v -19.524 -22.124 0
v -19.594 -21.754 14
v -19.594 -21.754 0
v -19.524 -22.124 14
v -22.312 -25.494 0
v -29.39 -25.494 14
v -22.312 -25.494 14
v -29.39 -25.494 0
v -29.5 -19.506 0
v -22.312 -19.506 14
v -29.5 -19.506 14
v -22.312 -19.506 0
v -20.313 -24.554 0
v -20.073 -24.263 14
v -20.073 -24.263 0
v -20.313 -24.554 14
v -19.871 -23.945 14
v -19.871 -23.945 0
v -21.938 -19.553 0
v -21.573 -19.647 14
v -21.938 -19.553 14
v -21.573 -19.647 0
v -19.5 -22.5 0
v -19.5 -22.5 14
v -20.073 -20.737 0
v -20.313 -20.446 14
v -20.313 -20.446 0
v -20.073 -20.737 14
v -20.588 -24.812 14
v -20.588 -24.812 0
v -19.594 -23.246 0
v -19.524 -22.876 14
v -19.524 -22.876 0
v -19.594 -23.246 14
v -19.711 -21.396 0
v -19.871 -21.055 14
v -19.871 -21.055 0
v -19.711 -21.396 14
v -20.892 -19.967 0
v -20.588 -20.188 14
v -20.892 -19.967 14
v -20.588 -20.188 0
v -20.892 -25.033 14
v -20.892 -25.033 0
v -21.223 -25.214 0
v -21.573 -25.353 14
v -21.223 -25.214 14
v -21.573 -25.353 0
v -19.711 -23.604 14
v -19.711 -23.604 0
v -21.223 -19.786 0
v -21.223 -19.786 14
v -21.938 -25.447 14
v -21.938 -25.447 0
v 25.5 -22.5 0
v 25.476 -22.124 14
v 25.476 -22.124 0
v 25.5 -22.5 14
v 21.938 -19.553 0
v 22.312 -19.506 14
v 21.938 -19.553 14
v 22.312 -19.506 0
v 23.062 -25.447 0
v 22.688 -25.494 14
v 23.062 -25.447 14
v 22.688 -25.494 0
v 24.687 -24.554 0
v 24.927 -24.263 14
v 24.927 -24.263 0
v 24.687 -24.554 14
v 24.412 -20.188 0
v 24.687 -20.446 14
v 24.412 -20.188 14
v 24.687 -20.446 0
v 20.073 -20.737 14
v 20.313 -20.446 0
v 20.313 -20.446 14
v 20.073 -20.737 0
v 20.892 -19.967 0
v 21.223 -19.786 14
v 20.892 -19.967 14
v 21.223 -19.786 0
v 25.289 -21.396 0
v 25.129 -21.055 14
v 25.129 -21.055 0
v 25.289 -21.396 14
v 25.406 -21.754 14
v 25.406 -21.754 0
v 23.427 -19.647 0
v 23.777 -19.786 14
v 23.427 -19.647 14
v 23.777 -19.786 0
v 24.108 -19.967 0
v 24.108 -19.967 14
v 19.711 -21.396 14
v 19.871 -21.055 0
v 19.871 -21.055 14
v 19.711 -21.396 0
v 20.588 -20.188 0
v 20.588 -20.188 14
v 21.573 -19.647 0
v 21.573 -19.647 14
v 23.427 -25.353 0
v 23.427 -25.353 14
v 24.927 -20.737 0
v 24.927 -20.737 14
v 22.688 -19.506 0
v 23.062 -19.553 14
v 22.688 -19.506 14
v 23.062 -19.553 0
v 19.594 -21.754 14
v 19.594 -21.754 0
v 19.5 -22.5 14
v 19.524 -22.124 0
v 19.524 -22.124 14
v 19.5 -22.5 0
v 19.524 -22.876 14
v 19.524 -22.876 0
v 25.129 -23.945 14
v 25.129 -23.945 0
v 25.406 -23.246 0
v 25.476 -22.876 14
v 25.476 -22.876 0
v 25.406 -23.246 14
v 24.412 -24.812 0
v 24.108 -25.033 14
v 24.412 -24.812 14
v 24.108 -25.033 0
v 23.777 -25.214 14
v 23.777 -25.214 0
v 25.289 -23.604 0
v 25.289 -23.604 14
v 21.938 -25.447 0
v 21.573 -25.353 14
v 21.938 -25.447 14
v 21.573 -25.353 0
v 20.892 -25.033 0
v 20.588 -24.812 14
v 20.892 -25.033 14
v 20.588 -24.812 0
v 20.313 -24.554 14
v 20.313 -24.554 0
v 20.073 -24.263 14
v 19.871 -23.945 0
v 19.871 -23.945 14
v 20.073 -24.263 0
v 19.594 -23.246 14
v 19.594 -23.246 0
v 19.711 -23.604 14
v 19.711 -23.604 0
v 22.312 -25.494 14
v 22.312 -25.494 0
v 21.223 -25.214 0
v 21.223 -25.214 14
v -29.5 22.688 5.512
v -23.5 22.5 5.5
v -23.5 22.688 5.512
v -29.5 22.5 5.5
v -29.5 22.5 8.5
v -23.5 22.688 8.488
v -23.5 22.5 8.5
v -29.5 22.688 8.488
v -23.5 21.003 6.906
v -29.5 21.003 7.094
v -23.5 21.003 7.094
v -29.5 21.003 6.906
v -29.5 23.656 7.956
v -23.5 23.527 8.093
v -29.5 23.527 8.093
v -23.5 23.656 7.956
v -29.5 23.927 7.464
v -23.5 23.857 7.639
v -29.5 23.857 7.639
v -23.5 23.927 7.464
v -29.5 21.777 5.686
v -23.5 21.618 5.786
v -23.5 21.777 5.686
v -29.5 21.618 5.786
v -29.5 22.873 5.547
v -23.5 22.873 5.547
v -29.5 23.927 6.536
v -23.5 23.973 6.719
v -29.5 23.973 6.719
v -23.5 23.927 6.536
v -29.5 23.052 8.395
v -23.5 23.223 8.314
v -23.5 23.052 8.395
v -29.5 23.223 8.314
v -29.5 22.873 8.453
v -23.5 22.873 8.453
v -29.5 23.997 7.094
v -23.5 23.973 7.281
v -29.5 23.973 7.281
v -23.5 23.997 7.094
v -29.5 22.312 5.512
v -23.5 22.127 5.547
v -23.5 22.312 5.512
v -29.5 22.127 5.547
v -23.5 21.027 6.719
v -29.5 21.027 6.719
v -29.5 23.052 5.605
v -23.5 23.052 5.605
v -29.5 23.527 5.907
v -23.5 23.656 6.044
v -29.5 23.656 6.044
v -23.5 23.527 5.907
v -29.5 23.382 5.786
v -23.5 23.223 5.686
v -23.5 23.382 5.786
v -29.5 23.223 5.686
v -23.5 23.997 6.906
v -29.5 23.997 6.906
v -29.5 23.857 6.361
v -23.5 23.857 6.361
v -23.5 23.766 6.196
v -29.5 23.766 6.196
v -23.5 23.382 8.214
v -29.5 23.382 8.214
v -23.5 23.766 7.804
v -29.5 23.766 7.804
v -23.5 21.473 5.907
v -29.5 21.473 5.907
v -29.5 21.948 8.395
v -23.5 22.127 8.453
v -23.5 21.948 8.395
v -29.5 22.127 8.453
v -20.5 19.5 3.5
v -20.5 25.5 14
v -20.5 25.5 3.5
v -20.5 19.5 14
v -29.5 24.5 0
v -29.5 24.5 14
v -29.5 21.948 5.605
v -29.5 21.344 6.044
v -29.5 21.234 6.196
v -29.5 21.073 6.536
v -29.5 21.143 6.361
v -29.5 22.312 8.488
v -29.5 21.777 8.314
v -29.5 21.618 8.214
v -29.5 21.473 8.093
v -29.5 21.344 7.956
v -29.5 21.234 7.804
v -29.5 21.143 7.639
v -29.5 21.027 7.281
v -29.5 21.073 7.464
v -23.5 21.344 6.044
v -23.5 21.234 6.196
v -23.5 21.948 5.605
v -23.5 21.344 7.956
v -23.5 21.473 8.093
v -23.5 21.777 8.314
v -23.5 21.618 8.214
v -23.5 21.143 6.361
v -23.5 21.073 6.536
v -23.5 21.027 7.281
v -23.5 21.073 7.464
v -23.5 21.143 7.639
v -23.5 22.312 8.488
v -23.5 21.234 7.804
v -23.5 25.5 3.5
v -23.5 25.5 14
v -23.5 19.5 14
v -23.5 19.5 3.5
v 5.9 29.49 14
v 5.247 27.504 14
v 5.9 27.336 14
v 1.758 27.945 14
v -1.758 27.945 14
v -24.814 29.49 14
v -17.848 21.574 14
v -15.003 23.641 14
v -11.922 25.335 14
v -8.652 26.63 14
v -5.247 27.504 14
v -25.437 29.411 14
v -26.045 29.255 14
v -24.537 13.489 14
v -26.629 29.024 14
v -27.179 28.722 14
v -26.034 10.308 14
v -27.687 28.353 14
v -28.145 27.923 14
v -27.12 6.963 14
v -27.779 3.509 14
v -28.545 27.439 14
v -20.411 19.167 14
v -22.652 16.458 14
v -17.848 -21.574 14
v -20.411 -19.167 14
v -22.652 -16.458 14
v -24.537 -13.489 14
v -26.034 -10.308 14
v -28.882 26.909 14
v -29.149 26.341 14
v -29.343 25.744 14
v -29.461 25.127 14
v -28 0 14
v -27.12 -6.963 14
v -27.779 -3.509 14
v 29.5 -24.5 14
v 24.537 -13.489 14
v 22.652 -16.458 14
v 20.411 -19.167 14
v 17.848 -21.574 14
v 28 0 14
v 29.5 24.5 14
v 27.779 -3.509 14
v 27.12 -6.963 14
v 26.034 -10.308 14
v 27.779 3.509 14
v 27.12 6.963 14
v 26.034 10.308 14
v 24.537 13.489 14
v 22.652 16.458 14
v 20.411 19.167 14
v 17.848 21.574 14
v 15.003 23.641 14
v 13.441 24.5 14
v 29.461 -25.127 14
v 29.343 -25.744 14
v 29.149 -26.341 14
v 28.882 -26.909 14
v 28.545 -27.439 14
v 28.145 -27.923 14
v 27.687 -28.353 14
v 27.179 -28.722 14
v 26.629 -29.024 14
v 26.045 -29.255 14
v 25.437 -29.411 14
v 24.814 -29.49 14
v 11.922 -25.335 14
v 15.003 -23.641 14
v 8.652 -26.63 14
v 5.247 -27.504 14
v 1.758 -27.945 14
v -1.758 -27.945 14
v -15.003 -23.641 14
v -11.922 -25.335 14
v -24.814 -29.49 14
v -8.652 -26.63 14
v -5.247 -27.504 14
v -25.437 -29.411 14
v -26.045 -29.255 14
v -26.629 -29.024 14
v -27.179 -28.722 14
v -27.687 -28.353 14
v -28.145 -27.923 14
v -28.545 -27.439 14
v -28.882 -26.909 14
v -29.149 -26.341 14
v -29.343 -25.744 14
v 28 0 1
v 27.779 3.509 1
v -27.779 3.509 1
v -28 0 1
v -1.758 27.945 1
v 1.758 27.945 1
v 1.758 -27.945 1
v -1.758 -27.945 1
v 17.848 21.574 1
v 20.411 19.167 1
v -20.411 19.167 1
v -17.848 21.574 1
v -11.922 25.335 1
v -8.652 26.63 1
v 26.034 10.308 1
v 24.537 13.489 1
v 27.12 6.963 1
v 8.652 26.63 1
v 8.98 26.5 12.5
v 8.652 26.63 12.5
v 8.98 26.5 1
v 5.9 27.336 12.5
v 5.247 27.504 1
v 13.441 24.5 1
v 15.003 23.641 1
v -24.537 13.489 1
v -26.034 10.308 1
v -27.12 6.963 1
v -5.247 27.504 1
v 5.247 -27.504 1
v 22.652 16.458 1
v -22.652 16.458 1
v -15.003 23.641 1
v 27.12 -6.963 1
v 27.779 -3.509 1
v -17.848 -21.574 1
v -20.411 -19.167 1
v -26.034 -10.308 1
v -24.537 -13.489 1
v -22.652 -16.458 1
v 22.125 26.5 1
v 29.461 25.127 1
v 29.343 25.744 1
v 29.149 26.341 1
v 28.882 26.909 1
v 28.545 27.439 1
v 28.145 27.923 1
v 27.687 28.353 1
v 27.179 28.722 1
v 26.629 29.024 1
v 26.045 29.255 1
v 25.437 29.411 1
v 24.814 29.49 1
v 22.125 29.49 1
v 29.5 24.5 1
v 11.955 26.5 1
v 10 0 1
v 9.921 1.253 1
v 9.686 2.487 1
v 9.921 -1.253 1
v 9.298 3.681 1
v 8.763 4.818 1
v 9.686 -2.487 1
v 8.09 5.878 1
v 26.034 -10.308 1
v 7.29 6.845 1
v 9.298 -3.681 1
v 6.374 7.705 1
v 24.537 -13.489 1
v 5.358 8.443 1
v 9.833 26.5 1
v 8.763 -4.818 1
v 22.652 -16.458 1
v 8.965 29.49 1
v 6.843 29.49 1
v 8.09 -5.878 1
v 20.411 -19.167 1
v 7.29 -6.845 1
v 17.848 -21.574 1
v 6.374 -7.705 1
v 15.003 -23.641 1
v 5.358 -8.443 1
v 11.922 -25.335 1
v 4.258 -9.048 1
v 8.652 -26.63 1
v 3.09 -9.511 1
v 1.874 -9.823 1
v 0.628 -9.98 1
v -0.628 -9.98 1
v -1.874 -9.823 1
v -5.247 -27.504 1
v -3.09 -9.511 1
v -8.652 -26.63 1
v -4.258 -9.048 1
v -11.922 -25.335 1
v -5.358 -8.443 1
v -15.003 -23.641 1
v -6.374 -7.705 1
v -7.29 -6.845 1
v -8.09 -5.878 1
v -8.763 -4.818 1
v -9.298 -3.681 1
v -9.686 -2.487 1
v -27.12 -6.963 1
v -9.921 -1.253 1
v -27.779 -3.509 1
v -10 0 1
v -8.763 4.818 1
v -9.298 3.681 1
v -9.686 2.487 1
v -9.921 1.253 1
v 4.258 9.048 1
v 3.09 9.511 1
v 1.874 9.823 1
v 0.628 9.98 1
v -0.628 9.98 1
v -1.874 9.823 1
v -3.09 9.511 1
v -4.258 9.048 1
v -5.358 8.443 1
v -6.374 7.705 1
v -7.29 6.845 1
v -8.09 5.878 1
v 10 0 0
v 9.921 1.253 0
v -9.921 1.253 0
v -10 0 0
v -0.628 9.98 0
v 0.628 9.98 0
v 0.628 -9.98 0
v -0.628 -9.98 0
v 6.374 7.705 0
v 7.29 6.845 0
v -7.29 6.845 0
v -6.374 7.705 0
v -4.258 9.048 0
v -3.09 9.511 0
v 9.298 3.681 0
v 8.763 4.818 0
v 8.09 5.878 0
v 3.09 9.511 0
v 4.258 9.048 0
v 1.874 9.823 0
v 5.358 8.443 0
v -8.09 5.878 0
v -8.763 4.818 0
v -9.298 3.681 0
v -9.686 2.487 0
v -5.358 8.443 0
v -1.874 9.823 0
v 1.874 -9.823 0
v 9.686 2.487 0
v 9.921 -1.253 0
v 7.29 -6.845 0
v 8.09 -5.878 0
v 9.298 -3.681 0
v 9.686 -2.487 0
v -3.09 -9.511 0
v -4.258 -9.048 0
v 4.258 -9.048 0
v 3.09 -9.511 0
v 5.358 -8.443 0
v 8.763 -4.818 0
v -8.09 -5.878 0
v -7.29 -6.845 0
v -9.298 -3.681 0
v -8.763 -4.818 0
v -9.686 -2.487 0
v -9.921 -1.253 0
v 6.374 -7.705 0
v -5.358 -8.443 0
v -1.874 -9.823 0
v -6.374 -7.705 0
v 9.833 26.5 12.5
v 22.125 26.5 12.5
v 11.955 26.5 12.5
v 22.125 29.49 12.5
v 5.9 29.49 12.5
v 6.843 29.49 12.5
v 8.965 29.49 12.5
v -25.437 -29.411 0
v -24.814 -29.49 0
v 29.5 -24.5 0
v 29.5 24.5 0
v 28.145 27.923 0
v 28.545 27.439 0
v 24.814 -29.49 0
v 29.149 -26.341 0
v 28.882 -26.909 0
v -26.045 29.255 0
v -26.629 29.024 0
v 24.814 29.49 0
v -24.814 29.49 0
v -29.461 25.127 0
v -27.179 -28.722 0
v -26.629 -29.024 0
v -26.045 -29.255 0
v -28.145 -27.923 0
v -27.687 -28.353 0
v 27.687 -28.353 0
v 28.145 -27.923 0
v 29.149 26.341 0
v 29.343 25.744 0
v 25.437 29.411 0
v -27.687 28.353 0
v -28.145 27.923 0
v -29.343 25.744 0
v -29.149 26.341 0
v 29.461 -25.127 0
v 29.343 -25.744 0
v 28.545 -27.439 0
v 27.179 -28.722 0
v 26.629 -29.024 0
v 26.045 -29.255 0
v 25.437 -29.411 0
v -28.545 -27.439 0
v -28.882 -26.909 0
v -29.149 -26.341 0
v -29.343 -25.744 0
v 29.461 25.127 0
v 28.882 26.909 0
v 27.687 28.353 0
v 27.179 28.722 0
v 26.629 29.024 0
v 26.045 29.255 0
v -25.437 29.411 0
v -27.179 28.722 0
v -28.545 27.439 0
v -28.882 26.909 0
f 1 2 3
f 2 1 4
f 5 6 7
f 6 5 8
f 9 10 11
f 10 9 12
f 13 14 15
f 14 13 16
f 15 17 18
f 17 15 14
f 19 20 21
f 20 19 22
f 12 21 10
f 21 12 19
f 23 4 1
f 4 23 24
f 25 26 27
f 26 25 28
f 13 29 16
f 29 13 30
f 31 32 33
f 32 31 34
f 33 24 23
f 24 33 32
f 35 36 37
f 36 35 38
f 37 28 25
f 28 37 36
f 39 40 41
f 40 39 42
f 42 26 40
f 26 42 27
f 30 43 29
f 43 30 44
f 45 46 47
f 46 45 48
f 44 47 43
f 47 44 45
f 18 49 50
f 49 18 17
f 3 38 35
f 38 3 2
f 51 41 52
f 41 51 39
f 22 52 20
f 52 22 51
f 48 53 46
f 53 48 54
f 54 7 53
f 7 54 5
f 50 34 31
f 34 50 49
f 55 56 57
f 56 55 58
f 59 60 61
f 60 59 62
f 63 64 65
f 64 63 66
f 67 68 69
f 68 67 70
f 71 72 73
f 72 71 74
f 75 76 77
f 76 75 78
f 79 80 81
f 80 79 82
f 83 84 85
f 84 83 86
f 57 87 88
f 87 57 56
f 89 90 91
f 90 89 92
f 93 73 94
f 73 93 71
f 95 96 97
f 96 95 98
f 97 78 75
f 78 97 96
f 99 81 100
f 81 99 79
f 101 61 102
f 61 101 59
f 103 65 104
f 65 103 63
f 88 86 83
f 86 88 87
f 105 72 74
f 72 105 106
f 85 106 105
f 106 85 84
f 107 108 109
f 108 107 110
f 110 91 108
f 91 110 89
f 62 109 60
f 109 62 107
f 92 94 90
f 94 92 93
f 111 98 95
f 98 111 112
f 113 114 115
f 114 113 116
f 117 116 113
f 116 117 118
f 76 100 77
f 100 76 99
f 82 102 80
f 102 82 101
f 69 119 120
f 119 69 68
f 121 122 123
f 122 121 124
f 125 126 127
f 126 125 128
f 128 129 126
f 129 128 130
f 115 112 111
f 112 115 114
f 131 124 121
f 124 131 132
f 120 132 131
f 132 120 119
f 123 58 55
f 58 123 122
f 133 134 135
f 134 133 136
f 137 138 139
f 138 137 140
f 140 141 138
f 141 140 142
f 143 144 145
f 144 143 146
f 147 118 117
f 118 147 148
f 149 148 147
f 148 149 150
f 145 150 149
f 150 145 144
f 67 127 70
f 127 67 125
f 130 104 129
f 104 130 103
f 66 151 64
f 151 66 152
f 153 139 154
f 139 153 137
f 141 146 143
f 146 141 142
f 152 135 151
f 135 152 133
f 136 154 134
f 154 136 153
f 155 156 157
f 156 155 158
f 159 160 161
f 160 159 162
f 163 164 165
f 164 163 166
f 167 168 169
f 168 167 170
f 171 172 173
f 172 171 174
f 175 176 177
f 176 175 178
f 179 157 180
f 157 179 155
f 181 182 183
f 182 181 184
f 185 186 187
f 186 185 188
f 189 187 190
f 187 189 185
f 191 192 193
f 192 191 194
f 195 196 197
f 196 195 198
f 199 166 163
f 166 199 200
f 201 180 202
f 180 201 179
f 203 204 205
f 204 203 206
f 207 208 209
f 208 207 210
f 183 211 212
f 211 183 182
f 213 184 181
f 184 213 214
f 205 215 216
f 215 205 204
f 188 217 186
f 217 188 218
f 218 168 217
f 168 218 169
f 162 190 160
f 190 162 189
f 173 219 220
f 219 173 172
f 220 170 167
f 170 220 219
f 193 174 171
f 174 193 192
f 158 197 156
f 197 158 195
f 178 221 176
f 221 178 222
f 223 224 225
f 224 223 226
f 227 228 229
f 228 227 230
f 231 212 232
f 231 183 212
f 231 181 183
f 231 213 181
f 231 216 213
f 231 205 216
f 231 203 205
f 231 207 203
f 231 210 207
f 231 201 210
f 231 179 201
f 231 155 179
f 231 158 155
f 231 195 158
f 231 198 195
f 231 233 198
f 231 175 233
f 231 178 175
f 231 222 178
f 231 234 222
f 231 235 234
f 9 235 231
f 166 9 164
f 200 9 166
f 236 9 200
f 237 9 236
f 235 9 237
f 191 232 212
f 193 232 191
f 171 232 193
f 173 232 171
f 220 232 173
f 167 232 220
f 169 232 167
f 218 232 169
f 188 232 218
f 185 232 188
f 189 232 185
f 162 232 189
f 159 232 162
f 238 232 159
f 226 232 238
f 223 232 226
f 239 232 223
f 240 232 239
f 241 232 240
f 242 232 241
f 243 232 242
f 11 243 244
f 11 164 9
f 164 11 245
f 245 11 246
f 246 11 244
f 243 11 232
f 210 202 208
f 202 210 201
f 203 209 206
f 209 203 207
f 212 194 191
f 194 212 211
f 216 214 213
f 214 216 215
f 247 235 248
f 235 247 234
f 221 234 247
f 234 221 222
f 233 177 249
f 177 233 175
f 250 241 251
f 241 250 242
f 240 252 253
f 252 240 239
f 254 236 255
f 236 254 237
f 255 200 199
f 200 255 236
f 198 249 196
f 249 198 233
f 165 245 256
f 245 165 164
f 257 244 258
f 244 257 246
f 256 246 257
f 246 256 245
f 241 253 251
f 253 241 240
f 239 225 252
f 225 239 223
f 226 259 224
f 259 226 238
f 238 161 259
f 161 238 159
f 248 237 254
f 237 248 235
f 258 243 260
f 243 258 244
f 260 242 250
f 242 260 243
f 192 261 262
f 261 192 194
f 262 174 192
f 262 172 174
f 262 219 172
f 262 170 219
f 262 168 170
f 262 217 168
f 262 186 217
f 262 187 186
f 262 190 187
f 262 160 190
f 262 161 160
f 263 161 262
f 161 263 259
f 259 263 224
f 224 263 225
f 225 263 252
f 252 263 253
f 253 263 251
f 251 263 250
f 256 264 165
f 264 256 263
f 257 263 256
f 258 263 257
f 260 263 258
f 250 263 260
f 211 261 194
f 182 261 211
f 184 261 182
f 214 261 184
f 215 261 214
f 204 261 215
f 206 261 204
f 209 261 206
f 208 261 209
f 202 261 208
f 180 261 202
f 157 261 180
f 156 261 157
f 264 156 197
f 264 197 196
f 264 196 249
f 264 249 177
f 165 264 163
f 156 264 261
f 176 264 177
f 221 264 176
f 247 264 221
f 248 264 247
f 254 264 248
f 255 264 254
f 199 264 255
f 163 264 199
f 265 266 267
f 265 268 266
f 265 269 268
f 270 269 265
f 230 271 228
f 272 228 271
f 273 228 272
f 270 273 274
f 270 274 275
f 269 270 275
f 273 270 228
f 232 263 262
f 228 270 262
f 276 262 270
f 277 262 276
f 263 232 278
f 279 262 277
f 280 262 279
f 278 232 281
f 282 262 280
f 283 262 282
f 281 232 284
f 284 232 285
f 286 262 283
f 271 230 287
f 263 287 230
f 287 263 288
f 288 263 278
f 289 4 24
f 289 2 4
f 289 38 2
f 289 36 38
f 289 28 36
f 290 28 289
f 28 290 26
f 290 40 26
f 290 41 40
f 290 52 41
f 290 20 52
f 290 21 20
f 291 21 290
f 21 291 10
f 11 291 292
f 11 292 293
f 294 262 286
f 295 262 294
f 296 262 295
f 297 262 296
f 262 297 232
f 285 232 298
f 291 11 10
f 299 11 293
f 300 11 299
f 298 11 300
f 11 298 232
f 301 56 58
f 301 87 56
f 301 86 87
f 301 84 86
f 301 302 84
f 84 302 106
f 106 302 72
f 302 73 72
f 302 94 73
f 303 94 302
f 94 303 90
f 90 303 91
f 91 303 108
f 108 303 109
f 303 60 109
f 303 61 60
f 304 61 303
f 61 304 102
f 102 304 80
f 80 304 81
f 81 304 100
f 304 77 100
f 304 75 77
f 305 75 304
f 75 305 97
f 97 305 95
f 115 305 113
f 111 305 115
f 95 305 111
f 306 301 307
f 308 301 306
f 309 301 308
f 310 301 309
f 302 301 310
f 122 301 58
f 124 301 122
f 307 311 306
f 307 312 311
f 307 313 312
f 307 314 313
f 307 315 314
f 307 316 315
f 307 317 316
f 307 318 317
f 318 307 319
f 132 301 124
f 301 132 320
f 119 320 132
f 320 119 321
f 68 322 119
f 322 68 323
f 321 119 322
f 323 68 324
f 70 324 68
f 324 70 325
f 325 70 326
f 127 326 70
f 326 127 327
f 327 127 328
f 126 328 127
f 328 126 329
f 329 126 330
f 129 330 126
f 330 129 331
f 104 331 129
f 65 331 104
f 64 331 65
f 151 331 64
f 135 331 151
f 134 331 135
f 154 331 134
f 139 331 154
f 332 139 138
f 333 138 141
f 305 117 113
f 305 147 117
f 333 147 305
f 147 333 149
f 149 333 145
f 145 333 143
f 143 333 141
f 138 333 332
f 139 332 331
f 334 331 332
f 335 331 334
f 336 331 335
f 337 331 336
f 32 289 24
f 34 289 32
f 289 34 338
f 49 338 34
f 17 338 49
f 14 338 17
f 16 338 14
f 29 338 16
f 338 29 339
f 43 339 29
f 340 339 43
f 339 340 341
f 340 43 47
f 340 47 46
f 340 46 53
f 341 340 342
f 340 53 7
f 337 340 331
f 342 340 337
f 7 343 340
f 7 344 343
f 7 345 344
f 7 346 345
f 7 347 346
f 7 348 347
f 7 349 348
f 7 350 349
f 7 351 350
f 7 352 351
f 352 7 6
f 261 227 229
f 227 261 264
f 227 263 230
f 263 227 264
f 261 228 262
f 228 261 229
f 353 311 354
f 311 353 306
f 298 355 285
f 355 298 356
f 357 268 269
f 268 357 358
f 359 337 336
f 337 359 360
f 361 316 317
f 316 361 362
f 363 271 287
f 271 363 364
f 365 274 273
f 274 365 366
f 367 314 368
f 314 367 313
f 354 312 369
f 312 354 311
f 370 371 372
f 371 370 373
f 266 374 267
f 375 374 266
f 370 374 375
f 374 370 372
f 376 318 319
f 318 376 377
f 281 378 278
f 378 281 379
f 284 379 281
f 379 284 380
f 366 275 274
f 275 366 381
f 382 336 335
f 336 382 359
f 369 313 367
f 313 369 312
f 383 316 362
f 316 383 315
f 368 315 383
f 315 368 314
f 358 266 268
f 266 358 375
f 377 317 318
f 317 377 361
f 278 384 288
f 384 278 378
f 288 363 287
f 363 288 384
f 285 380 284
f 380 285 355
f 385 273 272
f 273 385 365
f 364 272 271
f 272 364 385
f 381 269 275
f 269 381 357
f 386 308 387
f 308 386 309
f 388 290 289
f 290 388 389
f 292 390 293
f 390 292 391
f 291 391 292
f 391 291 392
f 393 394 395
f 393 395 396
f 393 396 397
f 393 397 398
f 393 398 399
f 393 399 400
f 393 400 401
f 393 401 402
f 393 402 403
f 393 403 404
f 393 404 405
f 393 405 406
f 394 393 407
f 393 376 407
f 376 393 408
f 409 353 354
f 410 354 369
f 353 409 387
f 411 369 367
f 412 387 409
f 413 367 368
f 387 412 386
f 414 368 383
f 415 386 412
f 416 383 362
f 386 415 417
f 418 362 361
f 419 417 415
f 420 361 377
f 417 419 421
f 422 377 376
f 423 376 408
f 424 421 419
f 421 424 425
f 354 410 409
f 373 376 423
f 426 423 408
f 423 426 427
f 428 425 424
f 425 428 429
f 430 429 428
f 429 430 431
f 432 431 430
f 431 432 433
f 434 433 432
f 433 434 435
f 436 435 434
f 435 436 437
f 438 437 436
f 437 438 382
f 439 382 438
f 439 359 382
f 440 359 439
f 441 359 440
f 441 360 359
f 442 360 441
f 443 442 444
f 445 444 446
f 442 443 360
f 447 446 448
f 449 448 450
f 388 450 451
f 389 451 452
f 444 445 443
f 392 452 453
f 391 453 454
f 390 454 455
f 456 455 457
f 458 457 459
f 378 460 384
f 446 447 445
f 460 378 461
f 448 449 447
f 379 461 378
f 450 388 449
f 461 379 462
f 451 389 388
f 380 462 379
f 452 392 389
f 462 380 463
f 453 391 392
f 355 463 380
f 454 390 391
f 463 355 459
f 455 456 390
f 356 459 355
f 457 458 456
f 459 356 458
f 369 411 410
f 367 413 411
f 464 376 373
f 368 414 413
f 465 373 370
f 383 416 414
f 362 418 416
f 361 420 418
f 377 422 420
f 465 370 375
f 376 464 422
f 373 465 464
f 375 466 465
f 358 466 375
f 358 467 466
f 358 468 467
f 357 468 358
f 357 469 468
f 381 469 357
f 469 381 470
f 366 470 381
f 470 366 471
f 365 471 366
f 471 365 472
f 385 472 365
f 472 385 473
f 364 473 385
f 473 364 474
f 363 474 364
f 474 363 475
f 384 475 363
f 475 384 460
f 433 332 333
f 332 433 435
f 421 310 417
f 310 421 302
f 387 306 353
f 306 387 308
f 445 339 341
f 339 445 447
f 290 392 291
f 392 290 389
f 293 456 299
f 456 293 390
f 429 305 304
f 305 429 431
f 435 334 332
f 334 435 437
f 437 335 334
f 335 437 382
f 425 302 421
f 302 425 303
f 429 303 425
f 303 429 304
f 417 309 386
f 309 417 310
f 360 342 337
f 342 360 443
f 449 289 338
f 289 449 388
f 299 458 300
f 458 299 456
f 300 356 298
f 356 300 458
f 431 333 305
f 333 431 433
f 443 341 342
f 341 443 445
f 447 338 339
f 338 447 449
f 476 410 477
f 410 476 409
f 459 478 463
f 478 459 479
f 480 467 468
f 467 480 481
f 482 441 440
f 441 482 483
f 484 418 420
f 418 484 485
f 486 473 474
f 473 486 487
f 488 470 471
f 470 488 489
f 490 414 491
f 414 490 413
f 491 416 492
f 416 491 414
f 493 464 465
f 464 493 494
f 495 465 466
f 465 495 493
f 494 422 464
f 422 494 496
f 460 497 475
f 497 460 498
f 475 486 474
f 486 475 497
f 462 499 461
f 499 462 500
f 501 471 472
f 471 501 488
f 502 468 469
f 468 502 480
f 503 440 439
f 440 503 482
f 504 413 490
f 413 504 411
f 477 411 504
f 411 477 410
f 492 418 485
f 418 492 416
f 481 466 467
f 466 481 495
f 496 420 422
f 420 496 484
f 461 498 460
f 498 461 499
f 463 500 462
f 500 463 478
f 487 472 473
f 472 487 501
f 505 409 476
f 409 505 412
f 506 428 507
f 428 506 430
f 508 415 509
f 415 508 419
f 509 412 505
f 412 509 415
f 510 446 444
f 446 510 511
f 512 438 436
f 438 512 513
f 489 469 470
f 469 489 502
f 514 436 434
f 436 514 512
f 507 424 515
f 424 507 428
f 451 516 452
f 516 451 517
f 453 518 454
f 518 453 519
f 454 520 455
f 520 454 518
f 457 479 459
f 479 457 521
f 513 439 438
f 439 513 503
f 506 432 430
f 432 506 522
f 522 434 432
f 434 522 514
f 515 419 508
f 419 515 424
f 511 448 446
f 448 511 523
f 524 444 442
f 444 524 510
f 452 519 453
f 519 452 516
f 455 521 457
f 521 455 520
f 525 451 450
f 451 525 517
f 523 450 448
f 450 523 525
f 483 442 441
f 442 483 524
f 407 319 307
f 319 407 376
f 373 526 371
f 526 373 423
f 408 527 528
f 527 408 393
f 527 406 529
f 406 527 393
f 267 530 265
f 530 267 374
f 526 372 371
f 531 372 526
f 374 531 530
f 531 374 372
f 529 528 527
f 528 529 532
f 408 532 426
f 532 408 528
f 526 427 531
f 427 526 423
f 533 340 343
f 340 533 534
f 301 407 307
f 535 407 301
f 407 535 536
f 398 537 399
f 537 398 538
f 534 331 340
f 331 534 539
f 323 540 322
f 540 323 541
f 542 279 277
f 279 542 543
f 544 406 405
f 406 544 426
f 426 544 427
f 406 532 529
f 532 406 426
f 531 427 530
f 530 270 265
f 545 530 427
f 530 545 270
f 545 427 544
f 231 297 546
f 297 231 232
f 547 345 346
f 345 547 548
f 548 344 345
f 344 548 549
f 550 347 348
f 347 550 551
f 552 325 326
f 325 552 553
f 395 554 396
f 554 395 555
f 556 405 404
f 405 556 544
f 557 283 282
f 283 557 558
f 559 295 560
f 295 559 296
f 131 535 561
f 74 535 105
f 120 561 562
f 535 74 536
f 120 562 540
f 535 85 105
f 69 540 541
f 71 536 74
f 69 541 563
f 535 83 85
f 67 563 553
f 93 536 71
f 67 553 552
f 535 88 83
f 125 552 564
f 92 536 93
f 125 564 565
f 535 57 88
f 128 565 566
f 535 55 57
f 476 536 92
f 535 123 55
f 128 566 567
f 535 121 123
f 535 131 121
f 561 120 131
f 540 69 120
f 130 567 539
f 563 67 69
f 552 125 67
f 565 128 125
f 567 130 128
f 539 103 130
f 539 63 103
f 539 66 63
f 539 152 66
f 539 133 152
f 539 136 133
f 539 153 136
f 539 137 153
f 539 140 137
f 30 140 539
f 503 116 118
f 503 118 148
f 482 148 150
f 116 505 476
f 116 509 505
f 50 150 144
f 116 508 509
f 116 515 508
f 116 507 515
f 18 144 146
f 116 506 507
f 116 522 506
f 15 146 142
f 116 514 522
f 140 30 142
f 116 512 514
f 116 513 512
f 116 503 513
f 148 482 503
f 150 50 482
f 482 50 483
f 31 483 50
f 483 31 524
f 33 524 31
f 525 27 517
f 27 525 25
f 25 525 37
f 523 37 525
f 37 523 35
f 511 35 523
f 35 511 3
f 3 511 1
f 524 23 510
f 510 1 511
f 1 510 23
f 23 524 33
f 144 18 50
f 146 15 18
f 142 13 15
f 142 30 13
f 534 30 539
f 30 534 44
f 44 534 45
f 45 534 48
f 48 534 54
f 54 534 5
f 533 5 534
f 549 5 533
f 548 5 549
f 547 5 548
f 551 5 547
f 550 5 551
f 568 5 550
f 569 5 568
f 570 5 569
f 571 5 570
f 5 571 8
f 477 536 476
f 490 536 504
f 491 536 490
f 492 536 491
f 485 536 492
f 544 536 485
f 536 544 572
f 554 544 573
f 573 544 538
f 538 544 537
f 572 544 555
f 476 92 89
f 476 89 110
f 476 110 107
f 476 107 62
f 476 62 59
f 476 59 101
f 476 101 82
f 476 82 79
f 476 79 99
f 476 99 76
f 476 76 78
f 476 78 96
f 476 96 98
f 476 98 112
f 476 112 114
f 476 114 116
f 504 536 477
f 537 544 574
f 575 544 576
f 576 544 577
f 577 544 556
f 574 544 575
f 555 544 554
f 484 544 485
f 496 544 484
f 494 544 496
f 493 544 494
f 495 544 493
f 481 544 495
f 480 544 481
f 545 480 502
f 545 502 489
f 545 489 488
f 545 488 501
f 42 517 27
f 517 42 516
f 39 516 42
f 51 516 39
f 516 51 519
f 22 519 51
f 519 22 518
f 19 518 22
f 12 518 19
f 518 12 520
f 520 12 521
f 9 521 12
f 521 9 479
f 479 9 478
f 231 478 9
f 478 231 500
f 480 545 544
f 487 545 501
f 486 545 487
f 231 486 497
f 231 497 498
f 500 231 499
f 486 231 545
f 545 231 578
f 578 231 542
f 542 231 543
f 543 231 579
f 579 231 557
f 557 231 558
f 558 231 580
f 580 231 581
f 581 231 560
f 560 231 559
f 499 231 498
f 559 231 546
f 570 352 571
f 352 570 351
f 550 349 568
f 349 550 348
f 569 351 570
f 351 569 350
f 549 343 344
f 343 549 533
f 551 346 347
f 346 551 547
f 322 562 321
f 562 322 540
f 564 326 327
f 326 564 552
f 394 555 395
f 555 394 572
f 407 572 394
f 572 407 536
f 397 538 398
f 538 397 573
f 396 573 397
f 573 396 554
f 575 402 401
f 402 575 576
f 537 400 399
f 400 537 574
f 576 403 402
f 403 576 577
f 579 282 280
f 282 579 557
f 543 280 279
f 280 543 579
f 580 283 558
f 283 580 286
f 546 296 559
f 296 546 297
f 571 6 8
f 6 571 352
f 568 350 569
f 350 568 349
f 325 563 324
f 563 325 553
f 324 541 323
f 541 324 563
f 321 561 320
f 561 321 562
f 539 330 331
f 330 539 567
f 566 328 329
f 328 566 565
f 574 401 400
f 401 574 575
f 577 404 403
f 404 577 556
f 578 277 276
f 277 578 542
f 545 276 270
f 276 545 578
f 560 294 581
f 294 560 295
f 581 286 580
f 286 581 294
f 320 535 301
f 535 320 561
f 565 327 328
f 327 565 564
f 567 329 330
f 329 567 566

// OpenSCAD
$fn = 50;


difference() {
	union() {
		translate(v = [0, 0, 0]) {
			rotate(a = [0, 0, 0]) {
				hull() {
					translate(v = [-24.5000000000, 24.5000000000, 0]) {
						rotate(a = [0, 0, 0]) {
							translate(v = [0, 0, 0]) {
								rotate(a = [0, 0, 0]) {
									cylinder(h = 14, r = 5);
								}
							}
						}
					}
					translate(v = [24.5000000000, 24.5000000000, 0]) {
						rotate(a = [0, 0, 0]) {
							translate(v = [0, 0, 0]) {
								rotate(a = [0, 0, 0]) {
									cylinder(h = 14, r = 5);
								}
							}
						}
					}
					translate(v = [-24.5000000000, -24.5000000000, 0]) {
						rotate(a = [0, 0, 0]) {
							translate(v = [0, 0, 0]) {
								rotate(a = [0, 0, 0]) {
									cylinder(h = 14, r = 5);
								}
							}
						}
					}
					translate(v = [24.5000000000, -24.5000000000, 0]) {
						rotate(a = [0, 0, 0]) {
							translate(v = [0, 0, 0]) {
								rotate(a = [0, 0, 0]) {
									cylinder(h = 14, r = 5);
								}
							}
						}
					}
				}
			}
		}
	}
	union() {
		translate(v = [-30.0000000000, -22.5000000000, -125]) {
			rotate(a = [0, 0, 0]) {
				hull() {
					translate(v = [7.5000000000, 0, 0]) {
						rotate(a = [0, 0, 0]) {
							translate(v = [0, 0, 0]) {
								rotate(a = [0, 0, 0]) {
									cylinder(h = 250, r = 3.0000000000);
								}
							}
						}
					}
					translate(v = [-7.5000000000, 0, 0]) {
						rotate(a = [0, 0, 0]) {
							translate(v = [0, 0, 0]) {
								rotate(a = [0, 0, 0]) {
									cylinder(h = 250, r = 3.0000000000);
								}
							}
						}
					}
				}
			}
		}
		translate(v = [22.5000000000, -22.5000000000, -125.0000000000]) {
			rotate(a = [0, 0, 0]) {
				cylinder(h = 250, r = 3.0000000000);
			}
		}
		translate(v = [-29.5000000000, 22.5000000000, 7.0000000000]) {
			rotate(a = [0, 90, 0]) {
				cylinder(h = 9, r = 1.5000000000);
			}
		}
		translate(v = [-23.5000000000, 19.5000000000, 3.5000000000]) {
			rotate(a = [0, 0, 0]) {
				cube(size = [3, 6, 10.5000000000]);
			}
		}
		translate(v = [0, 0, 1.0000000000]) {
			rotate(a = [0, 0, 0]) {
				cylinder(h = 16, r = 28.0000000000);
			}
		}
		translate(v = [0, 0, -7.0000000000]) {
			rotate(a = [0, 0, 0]) {
				cylinder(h = 14, r = 10.0000000000);
			}
		}
		translate(v = [0.0000000000, 24.5000000000, 1]) {
			rotate(a = [0, 0, 0]) {
				cube(size = [29.5000000000, 2, 16]);
			}
		}
		translate(v = [22.1250000000, 24.5000000000, 1]) {
			rotate(a = [0, 0, 0]) {
				cube(size = [7.3750000000, 5, 16]);
			}
		}
		translate(v = [5.9000000000, 24.5000000000, 12.5000000000]) {
			rotate(a = [0, 0, 0]) {
				cube(size = [23.6000000000, 5, 1.5000000000]);
			}
		}
		translate(v = [6.0833333333, 30.2500000000, 1]) {
			rotate(a = [0, 0, -45]) {
				cube(size = [7.5000000000, 1.5000000000, 16]);
			}
		}
	}
}
